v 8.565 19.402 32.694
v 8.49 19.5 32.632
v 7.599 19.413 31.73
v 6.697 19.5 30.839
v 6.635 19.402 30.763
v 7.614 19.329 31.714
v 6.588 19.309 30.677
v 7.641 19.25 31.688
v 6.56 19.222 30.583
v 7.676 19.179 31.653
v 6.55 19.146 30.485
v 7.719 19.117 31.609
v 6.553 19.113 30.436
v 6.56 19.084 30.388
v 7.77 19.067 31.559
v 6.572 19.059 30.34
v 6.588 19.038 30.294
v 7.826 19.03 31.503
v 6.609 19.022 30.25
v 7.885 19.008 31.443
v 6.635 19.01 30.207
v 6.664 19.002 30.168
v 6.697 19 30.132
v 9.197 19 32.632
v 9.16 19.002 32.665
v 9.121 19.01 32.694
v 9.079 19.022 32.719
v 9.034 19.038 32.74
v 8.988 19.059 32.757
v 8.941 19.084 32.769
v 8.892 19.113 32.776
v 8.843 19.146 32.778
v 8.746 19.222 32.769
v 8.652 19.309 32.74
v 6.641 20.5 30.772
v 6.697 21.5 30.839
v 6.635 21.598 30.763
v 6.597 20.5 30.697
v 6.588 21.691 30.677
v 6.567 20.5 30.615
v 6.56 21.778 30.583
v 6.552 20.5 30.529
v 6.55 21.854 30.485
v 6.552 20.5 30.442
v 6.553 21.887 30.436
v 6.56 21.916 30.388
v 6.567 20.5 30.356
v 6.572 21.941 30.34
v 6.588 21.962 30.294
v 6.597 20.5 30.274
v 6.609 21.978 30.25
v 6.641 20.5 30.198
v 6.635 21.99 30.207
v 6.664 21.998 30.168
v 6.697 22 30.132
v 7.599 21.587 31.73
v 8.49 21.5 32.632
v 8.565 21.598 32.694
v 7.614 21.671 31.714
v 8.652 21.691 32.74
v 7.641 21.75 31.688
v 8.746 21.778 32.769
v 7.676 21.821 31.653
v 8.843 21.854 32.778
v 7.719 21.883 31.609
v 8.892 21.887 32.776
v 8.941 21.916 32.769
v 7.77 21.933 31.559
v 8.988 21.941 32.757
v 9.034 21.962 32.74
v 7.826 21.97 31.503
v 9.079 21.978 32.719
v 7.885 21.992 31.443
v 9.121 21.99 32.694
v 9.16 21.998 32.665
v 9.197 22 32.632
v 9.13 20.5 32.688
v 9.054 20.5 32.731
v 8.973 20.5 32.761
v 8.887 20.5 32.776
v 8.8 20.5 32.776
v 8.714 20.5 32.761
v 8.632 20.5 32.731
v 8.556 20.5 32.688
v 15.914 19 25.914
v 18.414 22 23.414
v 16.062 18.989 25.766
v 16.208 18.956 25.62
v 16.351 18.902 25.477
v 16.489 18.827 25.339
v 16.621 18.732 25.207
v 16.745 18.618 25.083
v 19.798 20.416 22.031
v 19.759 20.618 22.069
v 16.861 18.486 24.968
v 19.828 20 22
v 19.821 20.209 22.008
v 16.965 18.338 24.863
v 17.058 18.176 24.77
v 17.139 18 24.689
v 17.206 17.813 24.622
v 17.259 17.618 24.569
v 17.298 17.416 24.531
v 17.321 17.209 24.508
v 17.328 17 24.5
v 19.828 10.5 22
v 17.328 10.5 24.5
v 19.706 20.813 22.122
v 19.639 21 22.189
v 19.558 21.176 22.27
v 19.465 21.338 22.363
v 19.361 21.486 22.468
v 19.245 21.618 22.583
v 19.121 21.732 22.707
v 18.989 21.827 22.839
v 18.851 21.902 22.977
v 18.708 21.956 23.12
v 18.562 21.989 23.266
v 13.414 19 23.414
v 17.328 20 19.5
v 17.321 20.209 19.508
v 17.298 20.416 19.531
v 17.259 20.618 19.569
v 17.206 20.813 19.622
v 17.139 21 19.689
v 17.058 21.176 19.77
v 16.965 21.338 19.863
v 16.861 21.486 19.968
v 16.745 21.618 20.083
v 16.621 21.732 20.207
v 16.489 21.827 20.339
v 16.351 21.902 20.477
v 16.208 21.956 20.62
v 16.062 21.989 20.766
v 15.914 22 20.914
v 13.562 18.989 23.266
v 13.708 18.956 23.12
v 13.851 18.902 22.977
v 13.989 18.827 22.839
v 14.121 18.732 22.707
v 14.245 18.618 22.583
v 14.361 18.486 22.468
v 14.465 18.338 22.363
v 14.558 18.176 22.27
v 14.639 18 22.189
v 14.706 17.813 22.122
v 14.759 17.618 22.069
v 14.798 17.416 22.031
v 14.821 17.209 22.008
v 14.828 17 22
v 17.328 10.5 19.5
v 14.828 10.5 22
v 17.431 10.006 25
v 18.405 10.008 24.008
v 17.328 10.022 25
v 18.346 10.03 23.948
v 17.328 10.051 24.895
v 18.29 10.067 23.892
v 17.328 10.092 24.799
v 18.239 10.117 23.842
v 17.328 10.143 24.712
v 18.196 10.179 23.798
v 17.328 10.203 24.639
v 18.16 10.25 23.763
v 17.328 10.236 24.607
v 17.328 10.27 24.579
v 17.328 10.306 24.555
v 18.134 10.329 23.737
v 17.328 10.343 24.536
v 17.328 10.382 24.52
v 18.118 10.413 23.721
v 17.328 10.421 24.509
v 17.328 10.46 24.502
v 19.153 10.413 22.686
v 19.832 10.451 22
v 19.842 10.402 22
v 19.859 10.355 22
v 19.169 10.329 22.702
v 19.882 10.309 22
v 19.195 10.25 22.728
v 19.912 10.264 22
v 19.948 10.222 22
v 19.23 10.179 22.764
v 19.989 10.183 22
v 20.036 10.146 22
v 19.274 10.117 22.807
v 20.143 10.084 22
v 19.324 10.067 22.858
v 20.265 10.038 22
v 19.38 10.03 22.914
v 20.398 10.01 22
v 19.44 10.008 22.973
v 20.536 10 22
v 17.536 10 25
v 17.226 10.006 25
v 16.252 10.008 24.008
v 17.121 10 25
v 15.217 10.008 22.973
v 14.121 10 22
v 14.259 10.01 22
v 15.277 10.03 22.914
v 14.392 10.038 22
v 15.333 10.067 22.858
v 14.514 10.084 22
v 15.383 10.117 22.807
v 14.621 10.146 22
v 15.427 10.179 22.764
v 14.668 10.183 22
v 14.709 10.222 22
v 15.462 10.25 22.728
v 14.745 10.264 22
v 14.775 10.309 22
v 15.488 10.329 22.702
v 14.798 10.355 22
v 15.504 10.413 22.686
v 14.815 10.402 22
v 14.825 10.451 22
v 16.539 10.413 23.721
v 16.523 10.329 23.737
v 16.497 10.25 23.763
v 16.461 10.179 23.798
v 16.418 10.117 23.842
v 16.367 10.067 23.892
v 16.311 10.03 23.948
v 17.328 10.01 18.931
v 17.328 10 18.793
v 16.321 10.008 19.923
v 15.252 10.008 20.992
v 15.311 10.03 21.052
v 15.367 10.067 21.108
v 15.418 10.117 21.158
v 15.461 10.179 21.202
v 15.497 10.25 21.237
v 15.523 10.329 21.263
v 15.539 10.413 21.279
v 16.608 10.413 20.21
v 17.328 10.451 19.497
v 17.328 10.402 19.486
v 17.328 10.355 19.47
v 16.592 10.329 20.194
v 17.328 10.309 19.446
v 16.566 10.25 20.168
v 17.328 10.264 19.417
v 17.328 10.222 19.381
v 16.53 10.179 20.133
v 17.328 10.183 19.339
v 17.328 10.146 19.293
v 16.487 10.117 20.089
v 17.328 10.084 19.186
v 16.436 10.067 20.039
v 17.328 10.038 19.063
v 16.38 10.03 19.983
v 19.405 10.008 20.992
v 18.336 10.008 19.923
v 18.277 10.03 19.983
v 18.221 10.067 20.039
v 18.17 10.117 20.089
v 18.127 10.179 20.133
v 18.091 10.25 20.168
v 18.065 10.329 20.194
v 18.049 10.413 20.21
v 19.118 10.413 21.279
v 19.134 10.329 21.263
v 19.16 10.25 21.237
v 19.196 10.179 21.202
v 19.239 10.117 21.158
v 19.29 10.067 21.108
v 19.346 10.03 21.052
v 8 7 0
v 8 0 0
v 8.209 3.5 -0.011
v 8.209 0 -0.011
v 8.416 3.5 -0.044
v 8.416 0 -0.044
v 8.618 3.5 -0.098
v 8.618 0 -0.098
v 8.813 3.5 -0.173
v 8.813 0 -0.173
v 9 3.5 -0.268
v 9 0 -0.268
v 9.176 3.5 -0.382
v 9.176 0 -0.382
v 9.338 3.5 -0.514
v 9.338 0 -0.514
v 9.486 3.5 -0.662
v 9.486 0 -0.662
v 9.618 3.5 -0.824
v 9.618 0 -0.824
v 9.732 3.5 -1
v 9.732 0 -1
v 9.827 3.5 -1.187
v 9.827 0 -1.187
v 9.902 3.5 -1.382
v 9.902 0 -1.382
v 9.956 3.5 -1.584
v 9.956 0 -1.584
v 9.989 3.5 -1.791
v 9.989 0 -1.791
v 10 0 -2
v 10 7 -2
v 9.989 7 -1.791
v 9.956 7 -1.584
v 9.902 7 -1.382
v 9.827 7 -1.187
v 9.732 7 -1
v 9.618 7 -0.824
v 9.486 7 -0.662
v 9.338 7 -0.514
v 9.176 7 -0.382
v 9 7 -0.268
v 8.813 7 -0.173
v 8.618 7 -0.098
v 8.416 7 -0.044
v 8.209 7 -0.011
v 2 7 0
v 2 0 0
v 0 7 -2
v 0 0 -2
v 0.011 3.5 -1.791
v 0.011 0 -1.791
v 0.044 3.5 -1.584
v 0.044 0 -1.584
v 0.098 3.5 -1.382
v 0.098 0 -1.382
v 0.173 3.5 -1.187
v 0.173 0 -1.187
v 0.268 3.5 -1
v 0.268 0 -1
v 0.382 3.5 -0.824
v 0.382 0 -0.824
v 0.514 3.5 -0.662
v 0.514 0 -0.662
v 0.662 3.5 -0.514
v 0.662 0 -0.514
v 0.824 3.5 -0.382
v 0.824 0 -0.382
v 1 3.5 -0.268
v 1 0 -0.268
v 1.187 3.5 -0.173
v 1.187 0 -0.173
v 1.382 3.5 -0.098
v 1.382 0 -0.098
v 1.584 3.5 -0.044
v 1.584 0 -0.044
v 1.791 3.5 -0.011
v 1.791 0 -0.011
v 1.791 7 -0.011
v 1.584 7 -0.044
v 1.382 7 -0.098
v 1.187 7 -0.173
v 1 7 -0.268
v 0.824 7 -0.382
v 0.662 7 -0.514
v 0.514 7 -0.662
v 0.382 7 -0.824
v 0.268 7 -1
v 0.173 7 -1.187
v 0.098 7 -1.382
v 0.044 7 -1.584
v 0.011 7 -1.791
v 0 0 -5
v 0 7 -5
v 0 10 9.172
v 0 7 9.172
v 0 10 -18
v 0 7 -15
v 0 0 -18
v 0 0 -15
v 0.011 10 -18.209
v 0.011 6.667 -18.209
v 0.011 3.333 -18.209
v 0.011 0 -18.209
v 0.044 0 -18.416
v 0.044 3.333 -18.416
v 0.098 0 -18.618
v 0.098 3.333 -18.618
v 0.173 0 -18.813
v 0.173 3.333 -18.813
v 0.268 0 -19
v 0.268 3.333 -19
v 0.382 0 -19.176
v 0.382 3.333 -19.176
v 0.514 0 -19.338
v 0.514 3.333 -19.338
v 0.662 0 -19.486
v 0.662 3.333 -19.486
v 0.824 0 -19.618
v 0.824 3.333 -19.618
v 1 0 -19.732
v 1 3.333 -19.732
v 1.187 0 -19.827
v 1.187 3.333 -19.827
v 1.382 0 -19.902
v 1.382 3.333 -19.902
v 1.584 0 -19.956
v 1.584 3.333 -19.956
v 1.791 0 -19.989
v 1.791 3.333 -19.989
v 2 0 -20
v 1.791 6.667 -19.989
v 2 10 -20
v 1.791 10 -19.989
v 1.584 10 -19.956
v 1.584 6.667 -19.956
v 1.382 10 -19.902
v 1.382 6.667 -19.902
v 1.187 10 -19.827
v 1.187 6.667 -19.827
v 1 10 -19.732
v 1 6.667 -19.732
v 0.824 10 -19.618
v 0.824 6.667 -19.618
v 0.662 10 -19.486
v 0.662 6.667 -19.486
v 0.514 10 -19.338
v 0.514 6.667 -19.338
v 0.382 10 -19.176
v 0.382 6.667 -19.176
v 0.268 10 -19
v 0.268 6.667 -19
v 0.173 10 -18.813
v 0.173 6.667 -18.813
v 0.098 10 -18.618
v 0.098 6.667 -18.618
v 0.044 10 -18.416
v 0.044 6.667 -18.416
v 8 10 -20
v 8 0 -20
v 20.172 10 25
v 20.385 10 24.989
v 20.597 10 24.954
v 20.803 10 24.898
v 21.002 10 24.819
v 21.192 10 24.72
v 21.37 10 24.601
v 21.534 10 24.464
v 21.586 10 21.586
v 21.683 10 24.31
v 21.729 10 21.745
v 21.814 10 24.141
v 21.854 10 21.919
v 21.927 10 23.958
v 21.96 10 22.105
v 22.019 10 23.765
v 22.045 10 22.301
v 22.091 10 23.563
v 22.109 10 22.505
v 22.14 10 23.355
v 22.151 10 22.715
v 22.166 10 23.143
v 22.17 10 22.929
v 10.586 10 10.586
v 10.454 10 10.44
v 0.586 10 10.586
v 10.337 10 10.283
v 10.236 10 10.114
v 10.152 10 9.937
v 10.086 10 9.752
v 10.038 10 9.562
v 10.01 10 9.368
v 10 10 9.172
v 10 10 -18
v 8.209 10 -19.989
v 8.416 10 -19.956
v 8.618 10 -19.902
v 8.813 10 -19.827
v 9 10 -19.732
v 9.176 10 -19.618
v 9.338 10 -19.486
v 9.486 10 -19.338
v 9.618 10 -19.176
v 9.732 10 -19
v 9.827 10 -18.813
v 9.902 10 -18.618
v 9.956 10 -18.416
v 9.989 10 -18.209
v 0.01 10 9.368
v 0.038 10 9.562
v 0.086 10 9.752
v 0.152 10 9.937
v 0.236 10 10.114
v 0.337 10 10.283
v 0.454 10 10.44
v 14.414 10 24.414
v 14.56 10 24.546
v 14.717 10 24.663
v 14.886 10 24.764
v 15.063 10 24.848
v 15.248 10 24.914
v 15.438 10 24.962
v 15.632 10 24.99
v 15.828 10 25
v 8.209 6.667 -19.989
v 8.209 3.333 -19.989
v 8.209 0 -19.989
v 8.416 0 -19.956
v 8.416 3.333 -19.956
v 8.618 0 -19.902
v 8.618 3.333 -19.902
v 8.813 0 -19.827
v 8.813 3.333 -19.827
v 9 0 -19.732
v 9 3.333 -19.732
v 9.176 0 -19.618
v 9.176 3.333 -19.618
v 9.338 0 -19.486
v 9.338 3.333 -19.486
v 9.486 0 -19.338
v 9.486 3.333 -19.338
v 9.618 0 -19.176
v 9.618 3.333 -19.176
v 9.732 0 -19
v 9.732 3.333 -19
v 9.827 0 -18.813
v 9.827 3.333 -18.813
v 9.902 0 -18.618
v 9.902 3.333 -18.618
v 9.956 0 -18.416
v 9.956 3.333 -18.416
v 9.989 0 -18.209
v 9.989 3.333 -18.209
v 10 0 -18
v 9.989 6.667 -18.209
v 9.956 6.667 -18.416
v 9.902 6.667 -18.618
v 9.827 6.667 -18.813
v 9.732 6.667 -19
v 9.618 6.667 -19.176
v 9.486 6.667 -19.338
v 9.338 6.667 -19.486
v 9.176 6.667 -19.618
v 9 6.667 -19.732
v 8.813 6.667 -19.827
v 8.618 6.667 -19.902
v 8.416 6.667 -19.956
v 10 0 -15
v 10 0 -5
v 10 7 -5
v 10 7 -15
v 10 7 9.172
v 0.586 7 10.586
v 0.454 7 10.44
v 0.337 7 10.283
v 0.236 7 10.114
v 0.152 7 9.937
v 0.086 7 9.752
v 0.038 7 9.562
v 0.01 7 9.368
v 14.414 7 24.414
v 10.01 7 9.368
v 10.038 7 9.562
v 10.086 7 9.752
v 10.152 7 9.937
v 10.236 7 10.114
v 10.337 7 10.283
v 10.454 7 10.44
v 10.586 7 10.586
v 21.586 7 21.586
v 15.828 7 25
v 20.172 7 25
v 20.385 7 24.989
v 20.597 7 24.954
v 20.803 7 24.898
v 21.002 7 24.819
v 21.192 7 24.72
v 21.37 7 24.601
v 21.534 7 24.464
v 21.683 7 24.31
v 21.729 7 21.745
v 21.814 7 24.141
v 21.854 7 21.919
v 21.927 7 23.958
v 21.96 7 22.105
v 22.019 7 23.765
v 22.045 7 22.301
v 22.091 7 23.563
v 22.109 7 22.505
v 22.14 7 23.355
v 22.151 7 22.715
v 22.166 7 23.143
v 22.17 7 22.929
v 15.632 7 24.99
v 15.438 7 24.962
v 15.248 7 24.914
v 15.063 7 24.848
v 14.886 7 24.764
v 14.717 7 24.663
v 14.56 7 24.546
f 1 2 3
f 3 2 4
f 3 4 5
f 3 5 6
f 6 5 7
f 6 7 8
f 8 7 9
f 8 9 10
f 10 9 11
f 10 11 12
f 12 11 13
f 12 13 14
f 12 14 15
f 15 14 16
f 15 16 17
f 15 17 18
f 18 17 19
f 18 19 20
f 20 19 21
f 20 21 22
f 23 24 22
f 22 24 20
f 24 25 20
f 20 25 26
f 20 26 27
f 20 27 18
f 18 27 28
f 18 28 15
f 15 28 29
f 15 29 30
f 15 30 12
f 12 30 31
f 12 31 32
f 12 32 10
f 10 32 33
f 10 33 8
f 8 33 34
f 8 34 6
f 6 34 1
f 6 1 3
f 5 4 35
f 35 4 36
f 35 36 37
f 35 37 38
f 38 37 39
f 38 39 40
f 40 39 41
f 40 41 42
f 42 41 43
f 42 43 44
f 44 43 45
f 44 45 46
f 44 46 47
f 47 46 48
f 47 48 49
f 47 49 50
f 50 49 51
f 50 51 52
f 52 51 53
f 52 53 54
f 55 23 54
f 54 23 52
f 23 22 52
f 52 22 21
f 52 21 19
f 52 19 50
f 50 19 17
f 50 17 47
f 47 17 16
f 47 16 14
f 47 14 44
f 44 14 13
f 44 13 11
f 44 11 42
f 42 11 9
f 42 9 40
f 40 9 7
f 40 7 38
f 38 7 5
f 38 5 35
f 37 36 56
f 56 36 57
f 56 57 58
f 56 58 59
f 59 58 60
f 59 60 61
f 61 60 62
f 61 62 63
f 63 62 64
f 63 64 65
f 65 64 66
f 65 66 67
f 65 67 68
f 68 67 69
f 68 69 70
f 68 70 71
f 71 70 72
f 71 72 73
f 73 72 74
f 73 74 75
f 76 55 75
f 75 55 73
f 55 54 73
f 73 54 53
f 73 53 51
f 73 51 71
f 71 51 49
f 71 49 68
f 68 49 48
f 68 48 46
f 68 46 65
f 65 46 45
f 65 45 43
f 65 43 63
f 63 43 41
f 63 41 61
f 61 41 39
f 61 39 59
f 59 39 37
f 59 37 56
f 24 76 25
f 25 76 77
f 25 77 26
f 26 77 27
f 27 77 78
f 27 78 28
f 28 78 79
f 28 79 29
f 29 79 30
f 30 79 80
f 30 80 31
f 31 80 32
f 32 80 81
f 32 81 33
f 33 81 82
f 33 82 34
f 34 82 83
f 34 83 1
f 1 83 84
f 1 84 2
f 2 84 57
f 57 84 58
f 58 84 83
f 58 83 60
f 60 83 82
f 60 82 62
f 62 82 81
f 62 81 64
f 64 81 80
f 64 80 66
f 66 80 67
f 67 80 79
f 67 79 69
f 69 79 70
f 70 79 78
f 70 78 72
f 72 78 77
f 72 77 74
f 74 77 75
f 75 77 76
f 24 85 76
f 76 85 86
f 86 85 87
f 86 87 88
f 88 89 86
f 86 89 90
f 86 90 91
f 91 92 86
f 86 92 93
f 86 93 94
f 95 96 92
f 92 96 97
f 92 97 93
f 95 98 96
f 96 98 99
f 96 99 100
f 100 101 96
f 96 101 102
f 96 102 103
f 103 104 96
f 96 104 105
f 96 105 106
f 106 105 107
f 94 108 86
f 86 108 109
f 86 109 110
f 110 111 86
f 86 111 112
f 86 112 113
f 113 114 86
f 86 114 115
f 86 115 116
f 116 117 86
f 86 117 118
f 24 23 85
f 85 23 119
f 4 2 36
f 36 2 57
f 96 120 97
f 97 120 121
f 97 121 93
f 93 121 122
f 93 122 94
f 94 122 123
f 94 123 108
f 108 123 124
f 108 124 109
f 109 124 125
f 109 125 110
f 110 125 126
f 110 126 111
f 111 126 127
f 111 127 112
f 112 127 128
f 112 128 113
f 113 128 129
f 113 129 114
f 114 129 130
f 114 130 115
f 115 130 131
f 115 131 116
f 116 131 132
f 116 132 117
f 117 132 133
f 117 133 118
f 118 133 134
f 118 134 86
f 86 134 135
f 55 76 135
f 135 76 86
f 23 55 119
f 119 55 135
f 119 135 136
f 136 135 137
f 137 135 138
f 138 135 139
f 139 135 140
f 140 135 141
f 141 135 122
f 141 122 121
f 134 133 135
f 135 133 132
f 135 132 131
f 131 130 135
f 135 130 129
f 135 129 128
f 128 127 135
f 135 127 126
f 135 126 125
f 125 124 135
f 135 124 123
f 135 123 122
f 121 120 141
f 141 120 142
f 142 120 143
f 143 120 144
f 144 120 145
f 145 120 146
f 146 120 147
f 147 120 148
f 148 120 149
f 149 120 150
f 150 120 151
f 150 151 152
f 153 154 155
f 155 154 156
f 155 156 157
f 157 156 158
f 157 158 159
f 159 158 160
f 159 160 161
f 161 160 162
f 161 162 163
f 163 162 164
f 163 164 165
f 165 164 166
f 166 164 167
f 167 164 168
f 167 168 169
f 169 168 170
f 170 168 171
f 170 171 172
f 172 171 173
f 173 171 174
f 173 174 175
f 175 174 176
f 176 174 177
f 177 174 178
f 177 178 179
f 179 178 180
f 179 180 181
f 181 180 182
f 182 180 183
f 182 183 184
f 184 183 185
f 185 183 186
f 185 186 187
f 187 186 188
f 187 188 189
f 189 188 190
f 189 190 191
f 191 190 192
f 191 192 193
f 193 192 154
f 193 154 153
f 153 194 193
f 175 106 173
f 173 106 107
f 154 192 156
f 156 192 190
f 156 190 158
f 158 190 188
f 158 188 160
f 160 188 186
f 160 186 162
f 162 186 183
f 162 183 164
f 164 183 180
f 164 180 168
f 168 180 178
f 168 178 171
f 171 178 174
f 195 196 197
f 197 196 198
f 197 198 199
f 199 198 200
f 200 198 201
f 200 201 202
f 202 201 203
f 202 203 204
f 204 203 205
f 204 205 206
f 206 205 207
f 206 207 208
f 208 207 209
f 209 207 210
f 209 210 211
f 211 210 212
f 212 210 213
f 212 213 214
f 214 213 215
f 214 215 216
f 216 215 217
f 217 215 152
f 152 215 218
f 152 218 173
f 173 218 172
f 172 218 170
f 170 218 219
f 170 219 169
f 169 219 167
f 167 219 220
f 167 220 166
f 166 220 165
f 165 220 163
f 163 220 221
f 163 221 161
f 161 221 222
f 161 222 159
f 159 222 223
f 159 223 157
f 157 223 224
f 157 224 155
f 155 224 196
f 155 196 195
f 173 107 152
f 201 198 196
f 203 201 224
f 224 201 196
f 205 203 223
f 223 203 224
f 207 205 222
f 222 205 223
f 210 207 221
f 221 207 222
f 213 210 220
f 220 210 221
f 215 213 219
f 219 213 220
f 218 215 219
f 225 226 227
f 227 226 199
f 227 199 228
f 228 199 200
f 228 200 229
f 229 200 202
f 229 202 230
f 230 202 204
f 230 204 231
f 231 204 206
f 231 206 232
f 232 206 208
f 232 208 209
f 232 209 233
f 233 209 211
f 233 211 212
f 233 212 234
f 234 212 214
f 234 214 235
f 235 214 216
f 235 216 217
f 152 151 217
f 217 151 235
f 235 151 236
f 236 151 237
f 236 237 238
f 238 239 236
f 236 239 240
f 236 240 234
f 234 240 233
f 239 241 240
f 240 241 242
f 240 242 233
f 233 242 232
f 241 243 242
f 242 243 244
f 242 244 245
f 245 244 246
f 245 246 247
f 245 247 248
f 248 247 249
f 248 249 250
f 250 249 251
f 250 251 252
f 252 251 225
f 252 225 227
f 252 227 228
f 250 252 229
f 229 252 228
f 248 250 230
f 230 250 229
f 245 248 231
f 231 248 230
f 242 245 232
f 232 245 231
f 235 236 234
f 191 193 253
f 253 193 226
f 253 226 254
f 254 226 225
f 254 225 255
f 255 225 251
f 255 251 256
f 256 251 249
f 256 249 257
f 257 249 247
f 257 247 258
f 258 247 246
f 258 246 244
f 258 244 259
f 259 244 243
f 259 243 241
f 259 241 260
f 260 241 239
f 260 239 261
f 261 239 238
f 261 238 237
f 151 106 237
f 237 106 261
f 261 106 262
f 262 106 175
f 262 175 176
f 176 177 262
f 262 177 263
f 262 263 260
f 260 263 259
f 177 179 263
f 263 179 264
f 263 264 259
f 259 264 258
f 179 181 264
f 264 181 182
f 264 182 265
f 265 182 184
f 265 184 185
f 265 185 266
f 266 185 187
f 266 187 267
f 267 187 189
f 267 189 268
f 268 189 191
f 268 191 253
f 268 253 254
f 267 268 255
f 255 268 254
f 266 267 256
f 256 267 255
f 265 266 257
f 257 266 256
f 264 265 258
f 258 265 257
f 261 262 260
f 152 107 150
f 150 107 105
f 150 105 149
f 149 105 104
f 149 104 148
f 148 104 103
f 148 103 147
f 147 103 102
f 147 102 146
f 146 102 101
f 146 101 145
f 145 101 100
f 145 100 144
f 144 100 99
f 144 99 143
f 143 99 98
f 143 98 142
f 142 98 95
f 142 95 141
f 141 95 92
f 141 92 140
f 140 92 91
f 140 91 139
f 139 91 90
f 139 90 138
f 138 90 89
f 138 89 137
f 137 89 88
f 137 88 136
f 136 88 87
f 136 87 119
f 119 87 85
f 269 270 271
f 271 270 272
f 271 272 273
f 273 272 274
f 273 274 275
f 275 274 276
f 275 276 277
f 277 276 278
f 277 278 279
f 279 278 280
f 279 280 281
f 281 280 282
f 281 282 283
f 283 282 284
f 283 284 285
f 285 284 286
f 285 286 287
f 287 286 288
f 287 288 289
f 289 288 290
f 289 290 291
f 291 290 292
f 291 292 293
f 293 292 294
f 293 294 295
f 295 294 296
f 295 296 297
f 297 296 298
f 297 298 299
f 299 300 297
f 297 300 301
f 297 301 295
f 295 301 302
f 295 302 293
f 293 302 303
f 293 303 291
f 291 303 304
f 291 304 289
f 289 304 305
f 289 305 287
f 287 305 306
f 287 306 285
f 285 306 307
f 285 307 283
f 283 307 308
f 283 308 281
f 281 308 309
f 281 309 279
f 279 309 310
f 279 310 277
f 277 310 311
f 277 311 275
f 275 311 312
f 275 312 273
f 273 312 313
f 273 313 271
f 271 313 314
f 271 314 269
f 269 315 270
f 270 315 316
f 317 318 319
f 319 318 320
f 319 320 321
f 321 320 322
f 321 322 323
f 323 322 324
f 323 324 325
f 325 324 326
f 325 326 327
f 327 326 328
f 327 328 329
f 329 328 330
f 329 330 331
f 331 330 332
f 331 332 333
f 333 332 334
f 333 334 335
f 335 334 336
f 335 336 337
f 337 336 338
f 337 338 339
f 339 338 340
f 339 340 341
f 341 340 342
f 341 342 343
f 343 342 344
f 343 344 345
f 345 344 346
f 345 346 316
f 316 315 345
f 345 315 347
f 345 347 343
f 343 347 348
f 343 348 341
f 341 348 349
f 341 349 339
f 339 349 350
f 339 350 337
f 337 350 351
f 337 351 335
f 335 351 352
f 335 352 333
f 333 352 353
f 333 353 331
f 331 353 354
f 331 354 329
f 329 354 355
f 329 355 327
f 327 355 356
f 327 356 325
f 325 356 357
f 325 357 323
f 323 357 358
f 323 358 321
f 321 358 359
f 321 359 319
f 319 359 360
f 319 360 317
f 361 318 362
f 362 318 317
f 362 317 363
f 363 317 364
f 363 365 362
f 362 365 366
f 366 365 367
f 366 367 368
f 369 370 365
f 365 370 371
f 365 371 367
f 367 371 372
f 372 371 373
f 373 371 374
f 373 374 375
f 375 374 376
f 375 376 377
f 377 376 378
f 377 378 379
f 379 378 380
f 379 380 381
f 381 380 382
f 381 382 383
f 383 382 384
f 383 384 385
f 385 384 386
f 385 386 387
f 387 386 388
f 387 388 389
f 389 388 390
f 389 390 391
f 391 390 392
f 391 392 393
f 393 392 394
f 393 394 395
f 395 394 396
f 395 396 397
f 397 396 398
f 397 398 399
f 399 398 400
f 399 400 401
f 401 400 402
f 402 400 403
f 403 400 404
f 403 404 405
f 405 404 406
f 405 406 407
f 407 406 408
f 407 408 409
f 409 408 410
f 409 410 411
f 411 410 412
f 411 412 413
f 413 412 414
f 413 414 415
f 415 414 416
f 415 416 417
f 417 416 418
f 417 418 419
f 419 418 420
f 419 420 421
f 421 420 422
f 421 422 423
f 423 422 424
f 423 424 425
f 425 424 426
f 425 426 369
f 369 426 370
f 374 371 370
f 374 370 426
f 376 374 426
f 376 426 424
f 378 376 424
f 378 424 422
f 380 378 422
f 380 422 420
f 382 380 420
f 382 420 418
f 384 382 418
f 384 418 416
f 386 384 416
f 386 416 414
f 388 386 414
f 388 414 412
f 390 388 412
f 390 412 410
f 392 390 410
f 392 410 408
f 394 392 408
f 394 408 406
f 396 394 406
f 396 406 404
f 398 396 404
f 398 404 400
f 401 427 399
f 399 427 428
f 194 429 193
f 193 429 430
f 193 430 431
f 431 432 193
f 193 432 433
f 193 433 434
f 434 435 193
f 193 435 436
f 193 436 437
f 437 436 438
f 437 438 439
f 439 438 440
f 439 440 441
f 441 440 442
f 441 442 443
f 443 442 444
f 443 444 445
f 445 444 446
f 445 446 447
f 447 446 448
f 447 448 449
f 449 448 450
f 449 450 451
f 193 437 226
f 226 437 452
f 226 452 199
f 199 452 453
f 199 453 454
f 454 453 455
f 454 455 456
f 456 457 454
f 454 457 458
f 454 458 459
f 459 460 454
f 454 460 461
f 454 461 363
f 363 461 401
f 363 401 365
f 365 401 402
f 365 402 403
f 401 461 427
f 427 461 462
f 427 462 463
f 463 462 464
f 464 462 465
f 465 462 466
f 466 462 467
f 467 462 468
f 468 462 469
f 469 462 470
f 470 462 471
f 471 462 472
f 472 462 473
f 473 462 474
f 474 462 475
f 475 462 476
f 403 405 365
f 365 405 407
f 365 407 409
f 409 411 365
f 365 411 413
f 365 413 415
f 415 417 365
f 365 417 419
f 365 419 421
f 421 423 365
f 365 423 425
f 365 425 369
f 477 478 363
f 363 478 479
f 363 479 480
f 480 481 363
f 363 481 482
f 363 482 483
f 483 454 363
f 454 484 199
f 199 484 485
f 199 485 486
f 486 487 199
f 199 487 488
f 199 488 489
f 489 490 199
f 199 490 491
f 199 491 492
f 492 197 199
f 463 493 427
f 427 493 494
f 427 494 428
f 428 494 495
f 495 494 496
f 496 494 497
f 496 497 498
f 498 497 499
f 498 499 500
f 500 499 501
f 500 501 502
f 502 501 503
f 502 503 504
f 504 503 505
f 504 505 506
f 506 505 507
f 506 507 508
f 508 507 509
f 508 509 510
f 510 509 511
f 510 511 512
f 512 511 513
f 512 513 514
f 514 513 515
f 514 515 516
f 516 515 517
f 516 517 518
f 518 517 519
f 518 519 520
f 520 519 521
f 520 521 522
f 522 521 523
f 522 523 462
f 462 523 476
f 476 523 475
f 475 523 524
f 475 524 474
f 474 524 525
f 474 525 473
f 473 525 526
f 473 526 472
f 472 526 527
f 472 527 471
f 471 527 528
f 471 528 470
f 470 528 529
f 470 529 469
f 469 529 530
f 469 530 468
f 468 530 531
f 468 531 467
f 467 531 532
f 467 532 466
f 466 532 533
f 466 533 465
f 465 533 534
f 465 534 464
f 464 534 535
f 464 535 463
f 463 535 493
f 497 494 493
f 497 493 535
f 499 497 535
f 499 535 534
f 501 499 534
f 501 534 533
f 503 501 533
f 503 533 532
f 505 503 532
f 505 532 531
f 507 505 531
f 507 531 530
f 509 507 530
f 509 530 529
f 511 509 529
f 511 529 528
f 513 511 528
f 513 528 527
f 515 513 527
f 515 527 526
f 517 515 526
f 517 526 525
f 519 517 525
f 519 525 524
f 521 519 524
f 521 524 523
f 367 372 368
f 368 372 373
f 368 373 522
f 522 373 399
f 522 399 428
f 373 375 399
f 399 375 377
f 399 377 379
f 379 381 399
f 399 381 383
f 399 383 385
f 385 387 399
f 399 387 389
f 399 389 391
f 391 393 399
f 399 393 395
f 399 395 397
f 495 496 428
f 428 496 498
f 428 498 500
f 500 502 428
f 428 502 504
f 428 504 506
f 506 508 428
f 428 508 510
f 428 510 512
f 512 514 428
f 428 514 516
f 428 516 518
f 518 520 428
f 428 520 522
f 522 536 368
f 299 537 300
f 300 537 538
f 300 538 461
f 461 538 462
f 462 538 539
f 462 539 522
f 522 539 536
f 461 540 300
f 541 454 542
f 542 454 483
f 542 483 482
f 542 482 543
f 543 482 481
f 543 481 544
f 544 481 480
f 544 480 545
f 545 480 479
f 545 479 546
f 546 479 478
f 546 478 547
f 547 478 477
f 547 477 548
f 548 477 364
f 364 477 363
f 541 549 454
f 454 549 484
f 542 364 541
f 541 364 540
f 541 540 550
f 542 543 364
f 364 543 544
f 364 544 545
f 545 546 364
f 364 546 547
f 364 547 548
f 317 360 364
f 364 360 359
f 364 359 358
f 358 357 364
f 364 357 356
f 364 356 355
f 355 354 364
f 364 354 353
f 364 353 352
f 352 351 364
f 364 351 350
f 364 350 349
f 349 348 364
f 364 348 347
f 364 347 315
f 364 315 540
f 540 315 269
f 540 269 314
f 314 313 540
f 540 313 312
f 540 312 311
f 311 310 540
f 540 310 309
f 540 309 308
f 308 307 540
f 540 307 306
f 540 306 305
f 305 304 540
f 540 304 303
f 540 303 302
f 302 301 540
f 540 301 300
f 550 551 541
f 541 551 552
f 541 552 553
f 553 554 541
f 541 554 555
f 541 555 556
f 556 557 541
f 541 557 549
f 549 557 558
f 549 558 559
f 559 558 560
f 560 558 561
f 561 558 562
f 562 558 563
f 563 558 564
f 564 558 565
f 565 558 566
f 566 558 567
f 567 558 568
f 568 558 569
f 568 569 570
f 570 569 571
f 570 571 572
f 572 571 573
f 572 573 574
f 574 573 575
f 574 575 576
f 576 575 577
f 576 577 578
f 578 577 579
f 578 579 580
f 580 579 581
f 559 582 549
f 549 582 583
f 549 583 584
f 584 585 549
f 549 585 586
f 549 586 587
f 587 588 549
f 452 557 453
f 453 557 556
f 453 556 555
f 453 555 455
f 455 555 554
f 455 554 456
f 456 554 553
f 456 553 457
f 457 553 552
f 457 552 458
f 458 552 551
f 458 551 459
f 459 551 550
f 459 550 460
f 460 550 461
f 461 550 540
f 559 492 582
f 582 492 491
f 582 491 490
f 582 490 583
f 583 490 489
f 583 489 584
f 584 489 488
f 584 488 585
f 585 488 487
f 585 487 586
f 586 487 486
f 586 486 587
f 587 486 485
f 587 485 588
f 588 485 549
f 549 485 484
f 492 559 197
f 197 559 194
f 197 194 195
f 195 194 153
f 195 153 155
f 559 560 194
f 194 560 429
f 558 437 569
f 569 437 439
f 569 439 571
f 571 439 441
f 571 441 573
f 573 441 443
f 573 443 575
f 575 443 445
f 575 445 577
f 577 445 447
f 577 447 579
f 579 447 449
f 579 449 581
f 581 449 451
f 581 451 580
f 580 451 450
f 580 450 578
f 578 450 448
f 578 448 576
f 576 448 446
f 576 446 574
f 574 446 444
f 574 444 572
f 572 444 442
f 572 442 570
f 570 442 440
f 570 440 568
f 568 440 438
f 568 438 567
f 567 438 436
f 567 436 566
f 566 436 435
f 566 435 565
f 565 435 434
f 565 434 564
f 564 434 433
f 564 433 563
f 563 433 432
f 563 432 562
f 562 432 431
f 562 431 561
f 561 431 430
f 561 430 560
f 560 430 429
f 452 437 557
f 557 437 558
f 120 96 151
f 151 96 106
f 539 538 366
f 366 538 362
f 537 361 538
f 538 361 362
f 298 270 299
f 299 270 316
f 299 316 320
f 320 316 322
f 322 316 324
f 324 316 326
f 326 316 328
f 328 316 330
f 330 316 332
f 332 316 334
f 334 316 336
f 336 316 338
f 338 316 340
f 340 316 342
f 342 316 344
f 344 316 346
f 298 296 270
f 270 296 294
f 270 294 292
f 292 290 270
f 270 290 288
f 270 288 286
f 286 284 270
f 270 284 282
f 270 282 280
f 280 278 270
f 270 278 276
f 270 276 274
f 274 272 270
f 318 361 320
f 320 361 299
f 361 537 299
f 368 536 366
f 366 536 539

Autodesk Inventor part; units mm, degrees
ref_plane "YZ Plane" through (0, 0, 0) normal (1, 0, 0) x (0, 1, 0)
ref_plane "XZ Plane" through (0, 0, 0) normal (0, 1, 0) x (-1, 0, 0)
ref_plane "XY Plane" through (0, 0, 0) normal (0, 0, 1) x (1, 0, 0)
sketch "Náčrt1" plane through (0, 0, 0) normal (0, 1, 0) x (-1, 0, 0)
  line L0 (0, 0) -> (-10, 0)
  line L1 (-10, 0) -> (-10, -5)
  line L2 (-10, -5) -> (0, -5)
  line L3 (0, -5) -> (0, 0)
  line L4 (0, -15) -> (-10, -15)
  line L5 (-10, -15) -> (-10, -20)
  line L6 (-10, -20) -> (0, -20)
  line L7 (0, -20) -> (0, -15)
  dimension "d0" = 10
  dimension "d1" = 5
  dimension "d2" = 5
  dimension "d3" = 10
extrude "Vysunutí1" add sketch "Náčrt1" along normal blind 7
sketch "Náčrt2" plane through (0, 7, 0) normal (0, 1, 0) x (1, 0, 0)
  line L0 (0, 0) -> (10, 0)
  line L1 (10, 0) -> (10, 20)
  line L2 (10, 20) -> (0, 20)
  line L3 (0, 20) -> (0, 0)
  line L4 (10, 0) -> (10, 5) projected
  line L5 (10, 0) -> (0, 0)
  line L6 (0, 0) -> (0, -10)
  line L7 (0, -10) -> (10, -10)
  line L8 (10, -10) -> (10, 0)
  line L9 (10, -10) -> (25, -25)
  line L10 (0, -10) -> (15, -25)
  line L11 (25, -25) -> (15, -25)
  dimension "d6" = 10
  dimension "d7" = 10
  dimension "d8" = 135
  dimension "d9" = 15
  dimension "d10" = 15
extrude "Vysunutí2" add sketch "Náčrt2" along normal blind 3
sketch "Náčrt3" plane through (0, 10, 0) normal (0, 1, 0) x (1, 0, 0)
  line L0 (15, -25) -> (25, -25)
  line L1 (17.328427, -24.5) -> (14.828427, -22)
  line L2 (14.828427, -22) -> (17.328427, -19.5)
  line L3 (17.328427, -19.5) -> (19.828427, -22)
  line L4 (19.828427, -22) -> (17.328427, -24.5)
  line L5 (0, -10) -> (15, -25)
  point P0 (0, 0)
  dimension "d22" = 2.5
  dimension "d23" = 2.5
  dimension "d24" = 0.5
  dimension "d25" = 2
extrude "Vysunutí5" add sketch "Náčrt3" along normal blind 12
sketch "Náčrt5" plane through (17.328427, 10, 24.5) normal (-0.7071068, 0, 0.7071068) x (0.7071068, 0, 0.7071068)
  line L0 (0, 12) -> (-3.535534, 12)
  line L1 (0, 0) -> (0, 12)
  line L2 (-3.535534, 12) -> (0, 12)
  line L3 (0, 12) -> (0, 9)
  line L4 (0, 9) -> (-3.535534, 9)
  line L5 (-3.535534, 9) -> (-3.535534, 12)
  point P0 (-29.577164, -10)
  dimension "d28" = 3
extrude "Vysunutí6" add sketch "Náčrt5" along normal blind 12
fillet "Zaoblení1" radius 2 8 edges at (25, 8.5, 25) (15, 8.5, 25) (10, 8.5, 10) (0, 8.5, 10) (10, 5, -20) (0, 5, -20) (0, 3.5, 0) (10, 3.5, 0)
fillet "Zaoblení2" radius 2 1 edges at (16.0784, 19, 23.25)
fillet "Zaoblení3" radius 0.5 4 edges at (16.0784, 10, 20.75) (16.0784, 10, 23.25) (18.5784, 10, 20.75) (18.5784, 10, 23.25)
fillet "Zaoblení4" radius 2 1 edges at (18.5784, 22, 20.75)
fillet "Zaoblení5" radius 0.5 4 edges at (7.5931, 22, 31.7353) (7.5931, 19, 31.7353) (8.8431, 20.5, 32.9853) (6.3431, 20.5, 30.4853)
equation "\"d10\" = d9"
properties part number "NozzleCleaner"
